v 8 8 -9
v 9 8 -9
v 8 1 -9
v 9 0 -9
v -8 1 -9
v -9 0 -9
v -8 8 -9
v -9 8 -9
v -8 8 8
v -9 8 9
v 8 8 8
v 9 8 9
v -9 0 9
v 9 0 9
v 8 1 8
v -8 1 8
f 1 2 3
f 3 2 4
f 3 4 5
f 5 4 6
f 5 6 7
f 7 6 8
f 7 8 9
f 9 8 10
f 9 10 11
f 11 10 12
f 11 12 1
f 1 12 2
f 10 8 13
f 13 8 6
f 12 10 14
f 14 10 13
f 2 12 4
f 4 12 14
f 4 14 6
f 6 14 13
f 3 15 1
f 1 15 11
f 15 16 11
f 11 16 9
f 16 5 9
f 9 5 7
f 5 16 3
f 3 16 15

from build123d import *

# Parameters (mm, degrees)
SKETCH_1_W          = 18
SKETCH_1_H          = 18
EXTRUDE_1_DEPTH     = 8
CUT_EXTRUDE_START   = 8
SKETCH_5_W          = 16
SKETCH_5_H          = 17
CUT_EXTRUDE_6_DEPTH = 7
EXTRUDE_START       = 8
SKETCH_6_W          = 18
SKETCH_6_H          = 18
EXTRUDE_2_DEPTH     = 1
CUT_EXTRUDE_START_2 = 9
SKETCH_7_R          = 6.5
CUT_EXTRUDE_7_DEPTH = 1
SKETCH_10_W         = 18
SKETCH_10_H         = 18
CUT_EXTRUDE_8_DEPTH = 1


with BuildPart() as part:
    # 스케치1 → 보스-돌출1 (new body)
    with BuildSketch(Plane(origin=(0, 0, 0), x_dir=(1, 0, 0), z_dir=(0, 1, 0))):
        Rectangle(SKETCH_1_W, SKETCH_1_H)
    extrude(amount=EXTRUDE_1_DEPTH)

    # 스케치5 → 컷-돌출6 (cut)
    with BuildSketch(Plane(origin=(0, 0, 0), x_dir=(1, 0, 0), z_dir=(0, 1, 0)).offset(CUT_EXTRUDE_START)):
        with Locations((0, 0.5)):
            Rectangle(SKETCH_5_W, SKETCH_5_H)
    extrude(amount=-CUT_EXTRUDE_6_DEPTH, mode=Mode.SUBTRACT)


with BuildPart() as body_2:
    # 스케치6 → 보스-돌출2 (new body)
    with BuildSketch(Plane(origin=(0, 0, 0), x_dir=(1, 0, 0), z_dir=(0, 1, 0)).offset(EXTRUDE_START)):
        Rectangle(SKETCH_6_W, SKETCH_6_H)
    extrude(amount=EXTRUDE_2_DEPTH)

    # 스케치7 → 컷-돌출7 (cut)
    with BuildSketch(Plane(origin=(0, 0, 0), x_dir=(1, 0, 0), z_dir=(0, 1, 0)).offset(CUT_EXTRUDE_START_2)):
        with Locations(Location((0, -0.5, 0), (0, 0, 270))):
            Circle(SKETCH_7_R)
    extrude(amount=-CUT_EXTRUDE_7_DEPTH, mode=Mode.SUBTRACT)

    # 스케치10 → 컷-돌출8 (cut)
    with BuildSketch(Plane(origin=(0, 9, 0), x_dir=(1, 0, 0), z_dir=(0, 1, 0))):
        Rectangle(SKETCH_10_W, SKETCH_10_H)
    extrude(amount=-CUT_EXTRUDE_8_DEPTH, mode=Mode.SUBTRACT)


solid = part.part
